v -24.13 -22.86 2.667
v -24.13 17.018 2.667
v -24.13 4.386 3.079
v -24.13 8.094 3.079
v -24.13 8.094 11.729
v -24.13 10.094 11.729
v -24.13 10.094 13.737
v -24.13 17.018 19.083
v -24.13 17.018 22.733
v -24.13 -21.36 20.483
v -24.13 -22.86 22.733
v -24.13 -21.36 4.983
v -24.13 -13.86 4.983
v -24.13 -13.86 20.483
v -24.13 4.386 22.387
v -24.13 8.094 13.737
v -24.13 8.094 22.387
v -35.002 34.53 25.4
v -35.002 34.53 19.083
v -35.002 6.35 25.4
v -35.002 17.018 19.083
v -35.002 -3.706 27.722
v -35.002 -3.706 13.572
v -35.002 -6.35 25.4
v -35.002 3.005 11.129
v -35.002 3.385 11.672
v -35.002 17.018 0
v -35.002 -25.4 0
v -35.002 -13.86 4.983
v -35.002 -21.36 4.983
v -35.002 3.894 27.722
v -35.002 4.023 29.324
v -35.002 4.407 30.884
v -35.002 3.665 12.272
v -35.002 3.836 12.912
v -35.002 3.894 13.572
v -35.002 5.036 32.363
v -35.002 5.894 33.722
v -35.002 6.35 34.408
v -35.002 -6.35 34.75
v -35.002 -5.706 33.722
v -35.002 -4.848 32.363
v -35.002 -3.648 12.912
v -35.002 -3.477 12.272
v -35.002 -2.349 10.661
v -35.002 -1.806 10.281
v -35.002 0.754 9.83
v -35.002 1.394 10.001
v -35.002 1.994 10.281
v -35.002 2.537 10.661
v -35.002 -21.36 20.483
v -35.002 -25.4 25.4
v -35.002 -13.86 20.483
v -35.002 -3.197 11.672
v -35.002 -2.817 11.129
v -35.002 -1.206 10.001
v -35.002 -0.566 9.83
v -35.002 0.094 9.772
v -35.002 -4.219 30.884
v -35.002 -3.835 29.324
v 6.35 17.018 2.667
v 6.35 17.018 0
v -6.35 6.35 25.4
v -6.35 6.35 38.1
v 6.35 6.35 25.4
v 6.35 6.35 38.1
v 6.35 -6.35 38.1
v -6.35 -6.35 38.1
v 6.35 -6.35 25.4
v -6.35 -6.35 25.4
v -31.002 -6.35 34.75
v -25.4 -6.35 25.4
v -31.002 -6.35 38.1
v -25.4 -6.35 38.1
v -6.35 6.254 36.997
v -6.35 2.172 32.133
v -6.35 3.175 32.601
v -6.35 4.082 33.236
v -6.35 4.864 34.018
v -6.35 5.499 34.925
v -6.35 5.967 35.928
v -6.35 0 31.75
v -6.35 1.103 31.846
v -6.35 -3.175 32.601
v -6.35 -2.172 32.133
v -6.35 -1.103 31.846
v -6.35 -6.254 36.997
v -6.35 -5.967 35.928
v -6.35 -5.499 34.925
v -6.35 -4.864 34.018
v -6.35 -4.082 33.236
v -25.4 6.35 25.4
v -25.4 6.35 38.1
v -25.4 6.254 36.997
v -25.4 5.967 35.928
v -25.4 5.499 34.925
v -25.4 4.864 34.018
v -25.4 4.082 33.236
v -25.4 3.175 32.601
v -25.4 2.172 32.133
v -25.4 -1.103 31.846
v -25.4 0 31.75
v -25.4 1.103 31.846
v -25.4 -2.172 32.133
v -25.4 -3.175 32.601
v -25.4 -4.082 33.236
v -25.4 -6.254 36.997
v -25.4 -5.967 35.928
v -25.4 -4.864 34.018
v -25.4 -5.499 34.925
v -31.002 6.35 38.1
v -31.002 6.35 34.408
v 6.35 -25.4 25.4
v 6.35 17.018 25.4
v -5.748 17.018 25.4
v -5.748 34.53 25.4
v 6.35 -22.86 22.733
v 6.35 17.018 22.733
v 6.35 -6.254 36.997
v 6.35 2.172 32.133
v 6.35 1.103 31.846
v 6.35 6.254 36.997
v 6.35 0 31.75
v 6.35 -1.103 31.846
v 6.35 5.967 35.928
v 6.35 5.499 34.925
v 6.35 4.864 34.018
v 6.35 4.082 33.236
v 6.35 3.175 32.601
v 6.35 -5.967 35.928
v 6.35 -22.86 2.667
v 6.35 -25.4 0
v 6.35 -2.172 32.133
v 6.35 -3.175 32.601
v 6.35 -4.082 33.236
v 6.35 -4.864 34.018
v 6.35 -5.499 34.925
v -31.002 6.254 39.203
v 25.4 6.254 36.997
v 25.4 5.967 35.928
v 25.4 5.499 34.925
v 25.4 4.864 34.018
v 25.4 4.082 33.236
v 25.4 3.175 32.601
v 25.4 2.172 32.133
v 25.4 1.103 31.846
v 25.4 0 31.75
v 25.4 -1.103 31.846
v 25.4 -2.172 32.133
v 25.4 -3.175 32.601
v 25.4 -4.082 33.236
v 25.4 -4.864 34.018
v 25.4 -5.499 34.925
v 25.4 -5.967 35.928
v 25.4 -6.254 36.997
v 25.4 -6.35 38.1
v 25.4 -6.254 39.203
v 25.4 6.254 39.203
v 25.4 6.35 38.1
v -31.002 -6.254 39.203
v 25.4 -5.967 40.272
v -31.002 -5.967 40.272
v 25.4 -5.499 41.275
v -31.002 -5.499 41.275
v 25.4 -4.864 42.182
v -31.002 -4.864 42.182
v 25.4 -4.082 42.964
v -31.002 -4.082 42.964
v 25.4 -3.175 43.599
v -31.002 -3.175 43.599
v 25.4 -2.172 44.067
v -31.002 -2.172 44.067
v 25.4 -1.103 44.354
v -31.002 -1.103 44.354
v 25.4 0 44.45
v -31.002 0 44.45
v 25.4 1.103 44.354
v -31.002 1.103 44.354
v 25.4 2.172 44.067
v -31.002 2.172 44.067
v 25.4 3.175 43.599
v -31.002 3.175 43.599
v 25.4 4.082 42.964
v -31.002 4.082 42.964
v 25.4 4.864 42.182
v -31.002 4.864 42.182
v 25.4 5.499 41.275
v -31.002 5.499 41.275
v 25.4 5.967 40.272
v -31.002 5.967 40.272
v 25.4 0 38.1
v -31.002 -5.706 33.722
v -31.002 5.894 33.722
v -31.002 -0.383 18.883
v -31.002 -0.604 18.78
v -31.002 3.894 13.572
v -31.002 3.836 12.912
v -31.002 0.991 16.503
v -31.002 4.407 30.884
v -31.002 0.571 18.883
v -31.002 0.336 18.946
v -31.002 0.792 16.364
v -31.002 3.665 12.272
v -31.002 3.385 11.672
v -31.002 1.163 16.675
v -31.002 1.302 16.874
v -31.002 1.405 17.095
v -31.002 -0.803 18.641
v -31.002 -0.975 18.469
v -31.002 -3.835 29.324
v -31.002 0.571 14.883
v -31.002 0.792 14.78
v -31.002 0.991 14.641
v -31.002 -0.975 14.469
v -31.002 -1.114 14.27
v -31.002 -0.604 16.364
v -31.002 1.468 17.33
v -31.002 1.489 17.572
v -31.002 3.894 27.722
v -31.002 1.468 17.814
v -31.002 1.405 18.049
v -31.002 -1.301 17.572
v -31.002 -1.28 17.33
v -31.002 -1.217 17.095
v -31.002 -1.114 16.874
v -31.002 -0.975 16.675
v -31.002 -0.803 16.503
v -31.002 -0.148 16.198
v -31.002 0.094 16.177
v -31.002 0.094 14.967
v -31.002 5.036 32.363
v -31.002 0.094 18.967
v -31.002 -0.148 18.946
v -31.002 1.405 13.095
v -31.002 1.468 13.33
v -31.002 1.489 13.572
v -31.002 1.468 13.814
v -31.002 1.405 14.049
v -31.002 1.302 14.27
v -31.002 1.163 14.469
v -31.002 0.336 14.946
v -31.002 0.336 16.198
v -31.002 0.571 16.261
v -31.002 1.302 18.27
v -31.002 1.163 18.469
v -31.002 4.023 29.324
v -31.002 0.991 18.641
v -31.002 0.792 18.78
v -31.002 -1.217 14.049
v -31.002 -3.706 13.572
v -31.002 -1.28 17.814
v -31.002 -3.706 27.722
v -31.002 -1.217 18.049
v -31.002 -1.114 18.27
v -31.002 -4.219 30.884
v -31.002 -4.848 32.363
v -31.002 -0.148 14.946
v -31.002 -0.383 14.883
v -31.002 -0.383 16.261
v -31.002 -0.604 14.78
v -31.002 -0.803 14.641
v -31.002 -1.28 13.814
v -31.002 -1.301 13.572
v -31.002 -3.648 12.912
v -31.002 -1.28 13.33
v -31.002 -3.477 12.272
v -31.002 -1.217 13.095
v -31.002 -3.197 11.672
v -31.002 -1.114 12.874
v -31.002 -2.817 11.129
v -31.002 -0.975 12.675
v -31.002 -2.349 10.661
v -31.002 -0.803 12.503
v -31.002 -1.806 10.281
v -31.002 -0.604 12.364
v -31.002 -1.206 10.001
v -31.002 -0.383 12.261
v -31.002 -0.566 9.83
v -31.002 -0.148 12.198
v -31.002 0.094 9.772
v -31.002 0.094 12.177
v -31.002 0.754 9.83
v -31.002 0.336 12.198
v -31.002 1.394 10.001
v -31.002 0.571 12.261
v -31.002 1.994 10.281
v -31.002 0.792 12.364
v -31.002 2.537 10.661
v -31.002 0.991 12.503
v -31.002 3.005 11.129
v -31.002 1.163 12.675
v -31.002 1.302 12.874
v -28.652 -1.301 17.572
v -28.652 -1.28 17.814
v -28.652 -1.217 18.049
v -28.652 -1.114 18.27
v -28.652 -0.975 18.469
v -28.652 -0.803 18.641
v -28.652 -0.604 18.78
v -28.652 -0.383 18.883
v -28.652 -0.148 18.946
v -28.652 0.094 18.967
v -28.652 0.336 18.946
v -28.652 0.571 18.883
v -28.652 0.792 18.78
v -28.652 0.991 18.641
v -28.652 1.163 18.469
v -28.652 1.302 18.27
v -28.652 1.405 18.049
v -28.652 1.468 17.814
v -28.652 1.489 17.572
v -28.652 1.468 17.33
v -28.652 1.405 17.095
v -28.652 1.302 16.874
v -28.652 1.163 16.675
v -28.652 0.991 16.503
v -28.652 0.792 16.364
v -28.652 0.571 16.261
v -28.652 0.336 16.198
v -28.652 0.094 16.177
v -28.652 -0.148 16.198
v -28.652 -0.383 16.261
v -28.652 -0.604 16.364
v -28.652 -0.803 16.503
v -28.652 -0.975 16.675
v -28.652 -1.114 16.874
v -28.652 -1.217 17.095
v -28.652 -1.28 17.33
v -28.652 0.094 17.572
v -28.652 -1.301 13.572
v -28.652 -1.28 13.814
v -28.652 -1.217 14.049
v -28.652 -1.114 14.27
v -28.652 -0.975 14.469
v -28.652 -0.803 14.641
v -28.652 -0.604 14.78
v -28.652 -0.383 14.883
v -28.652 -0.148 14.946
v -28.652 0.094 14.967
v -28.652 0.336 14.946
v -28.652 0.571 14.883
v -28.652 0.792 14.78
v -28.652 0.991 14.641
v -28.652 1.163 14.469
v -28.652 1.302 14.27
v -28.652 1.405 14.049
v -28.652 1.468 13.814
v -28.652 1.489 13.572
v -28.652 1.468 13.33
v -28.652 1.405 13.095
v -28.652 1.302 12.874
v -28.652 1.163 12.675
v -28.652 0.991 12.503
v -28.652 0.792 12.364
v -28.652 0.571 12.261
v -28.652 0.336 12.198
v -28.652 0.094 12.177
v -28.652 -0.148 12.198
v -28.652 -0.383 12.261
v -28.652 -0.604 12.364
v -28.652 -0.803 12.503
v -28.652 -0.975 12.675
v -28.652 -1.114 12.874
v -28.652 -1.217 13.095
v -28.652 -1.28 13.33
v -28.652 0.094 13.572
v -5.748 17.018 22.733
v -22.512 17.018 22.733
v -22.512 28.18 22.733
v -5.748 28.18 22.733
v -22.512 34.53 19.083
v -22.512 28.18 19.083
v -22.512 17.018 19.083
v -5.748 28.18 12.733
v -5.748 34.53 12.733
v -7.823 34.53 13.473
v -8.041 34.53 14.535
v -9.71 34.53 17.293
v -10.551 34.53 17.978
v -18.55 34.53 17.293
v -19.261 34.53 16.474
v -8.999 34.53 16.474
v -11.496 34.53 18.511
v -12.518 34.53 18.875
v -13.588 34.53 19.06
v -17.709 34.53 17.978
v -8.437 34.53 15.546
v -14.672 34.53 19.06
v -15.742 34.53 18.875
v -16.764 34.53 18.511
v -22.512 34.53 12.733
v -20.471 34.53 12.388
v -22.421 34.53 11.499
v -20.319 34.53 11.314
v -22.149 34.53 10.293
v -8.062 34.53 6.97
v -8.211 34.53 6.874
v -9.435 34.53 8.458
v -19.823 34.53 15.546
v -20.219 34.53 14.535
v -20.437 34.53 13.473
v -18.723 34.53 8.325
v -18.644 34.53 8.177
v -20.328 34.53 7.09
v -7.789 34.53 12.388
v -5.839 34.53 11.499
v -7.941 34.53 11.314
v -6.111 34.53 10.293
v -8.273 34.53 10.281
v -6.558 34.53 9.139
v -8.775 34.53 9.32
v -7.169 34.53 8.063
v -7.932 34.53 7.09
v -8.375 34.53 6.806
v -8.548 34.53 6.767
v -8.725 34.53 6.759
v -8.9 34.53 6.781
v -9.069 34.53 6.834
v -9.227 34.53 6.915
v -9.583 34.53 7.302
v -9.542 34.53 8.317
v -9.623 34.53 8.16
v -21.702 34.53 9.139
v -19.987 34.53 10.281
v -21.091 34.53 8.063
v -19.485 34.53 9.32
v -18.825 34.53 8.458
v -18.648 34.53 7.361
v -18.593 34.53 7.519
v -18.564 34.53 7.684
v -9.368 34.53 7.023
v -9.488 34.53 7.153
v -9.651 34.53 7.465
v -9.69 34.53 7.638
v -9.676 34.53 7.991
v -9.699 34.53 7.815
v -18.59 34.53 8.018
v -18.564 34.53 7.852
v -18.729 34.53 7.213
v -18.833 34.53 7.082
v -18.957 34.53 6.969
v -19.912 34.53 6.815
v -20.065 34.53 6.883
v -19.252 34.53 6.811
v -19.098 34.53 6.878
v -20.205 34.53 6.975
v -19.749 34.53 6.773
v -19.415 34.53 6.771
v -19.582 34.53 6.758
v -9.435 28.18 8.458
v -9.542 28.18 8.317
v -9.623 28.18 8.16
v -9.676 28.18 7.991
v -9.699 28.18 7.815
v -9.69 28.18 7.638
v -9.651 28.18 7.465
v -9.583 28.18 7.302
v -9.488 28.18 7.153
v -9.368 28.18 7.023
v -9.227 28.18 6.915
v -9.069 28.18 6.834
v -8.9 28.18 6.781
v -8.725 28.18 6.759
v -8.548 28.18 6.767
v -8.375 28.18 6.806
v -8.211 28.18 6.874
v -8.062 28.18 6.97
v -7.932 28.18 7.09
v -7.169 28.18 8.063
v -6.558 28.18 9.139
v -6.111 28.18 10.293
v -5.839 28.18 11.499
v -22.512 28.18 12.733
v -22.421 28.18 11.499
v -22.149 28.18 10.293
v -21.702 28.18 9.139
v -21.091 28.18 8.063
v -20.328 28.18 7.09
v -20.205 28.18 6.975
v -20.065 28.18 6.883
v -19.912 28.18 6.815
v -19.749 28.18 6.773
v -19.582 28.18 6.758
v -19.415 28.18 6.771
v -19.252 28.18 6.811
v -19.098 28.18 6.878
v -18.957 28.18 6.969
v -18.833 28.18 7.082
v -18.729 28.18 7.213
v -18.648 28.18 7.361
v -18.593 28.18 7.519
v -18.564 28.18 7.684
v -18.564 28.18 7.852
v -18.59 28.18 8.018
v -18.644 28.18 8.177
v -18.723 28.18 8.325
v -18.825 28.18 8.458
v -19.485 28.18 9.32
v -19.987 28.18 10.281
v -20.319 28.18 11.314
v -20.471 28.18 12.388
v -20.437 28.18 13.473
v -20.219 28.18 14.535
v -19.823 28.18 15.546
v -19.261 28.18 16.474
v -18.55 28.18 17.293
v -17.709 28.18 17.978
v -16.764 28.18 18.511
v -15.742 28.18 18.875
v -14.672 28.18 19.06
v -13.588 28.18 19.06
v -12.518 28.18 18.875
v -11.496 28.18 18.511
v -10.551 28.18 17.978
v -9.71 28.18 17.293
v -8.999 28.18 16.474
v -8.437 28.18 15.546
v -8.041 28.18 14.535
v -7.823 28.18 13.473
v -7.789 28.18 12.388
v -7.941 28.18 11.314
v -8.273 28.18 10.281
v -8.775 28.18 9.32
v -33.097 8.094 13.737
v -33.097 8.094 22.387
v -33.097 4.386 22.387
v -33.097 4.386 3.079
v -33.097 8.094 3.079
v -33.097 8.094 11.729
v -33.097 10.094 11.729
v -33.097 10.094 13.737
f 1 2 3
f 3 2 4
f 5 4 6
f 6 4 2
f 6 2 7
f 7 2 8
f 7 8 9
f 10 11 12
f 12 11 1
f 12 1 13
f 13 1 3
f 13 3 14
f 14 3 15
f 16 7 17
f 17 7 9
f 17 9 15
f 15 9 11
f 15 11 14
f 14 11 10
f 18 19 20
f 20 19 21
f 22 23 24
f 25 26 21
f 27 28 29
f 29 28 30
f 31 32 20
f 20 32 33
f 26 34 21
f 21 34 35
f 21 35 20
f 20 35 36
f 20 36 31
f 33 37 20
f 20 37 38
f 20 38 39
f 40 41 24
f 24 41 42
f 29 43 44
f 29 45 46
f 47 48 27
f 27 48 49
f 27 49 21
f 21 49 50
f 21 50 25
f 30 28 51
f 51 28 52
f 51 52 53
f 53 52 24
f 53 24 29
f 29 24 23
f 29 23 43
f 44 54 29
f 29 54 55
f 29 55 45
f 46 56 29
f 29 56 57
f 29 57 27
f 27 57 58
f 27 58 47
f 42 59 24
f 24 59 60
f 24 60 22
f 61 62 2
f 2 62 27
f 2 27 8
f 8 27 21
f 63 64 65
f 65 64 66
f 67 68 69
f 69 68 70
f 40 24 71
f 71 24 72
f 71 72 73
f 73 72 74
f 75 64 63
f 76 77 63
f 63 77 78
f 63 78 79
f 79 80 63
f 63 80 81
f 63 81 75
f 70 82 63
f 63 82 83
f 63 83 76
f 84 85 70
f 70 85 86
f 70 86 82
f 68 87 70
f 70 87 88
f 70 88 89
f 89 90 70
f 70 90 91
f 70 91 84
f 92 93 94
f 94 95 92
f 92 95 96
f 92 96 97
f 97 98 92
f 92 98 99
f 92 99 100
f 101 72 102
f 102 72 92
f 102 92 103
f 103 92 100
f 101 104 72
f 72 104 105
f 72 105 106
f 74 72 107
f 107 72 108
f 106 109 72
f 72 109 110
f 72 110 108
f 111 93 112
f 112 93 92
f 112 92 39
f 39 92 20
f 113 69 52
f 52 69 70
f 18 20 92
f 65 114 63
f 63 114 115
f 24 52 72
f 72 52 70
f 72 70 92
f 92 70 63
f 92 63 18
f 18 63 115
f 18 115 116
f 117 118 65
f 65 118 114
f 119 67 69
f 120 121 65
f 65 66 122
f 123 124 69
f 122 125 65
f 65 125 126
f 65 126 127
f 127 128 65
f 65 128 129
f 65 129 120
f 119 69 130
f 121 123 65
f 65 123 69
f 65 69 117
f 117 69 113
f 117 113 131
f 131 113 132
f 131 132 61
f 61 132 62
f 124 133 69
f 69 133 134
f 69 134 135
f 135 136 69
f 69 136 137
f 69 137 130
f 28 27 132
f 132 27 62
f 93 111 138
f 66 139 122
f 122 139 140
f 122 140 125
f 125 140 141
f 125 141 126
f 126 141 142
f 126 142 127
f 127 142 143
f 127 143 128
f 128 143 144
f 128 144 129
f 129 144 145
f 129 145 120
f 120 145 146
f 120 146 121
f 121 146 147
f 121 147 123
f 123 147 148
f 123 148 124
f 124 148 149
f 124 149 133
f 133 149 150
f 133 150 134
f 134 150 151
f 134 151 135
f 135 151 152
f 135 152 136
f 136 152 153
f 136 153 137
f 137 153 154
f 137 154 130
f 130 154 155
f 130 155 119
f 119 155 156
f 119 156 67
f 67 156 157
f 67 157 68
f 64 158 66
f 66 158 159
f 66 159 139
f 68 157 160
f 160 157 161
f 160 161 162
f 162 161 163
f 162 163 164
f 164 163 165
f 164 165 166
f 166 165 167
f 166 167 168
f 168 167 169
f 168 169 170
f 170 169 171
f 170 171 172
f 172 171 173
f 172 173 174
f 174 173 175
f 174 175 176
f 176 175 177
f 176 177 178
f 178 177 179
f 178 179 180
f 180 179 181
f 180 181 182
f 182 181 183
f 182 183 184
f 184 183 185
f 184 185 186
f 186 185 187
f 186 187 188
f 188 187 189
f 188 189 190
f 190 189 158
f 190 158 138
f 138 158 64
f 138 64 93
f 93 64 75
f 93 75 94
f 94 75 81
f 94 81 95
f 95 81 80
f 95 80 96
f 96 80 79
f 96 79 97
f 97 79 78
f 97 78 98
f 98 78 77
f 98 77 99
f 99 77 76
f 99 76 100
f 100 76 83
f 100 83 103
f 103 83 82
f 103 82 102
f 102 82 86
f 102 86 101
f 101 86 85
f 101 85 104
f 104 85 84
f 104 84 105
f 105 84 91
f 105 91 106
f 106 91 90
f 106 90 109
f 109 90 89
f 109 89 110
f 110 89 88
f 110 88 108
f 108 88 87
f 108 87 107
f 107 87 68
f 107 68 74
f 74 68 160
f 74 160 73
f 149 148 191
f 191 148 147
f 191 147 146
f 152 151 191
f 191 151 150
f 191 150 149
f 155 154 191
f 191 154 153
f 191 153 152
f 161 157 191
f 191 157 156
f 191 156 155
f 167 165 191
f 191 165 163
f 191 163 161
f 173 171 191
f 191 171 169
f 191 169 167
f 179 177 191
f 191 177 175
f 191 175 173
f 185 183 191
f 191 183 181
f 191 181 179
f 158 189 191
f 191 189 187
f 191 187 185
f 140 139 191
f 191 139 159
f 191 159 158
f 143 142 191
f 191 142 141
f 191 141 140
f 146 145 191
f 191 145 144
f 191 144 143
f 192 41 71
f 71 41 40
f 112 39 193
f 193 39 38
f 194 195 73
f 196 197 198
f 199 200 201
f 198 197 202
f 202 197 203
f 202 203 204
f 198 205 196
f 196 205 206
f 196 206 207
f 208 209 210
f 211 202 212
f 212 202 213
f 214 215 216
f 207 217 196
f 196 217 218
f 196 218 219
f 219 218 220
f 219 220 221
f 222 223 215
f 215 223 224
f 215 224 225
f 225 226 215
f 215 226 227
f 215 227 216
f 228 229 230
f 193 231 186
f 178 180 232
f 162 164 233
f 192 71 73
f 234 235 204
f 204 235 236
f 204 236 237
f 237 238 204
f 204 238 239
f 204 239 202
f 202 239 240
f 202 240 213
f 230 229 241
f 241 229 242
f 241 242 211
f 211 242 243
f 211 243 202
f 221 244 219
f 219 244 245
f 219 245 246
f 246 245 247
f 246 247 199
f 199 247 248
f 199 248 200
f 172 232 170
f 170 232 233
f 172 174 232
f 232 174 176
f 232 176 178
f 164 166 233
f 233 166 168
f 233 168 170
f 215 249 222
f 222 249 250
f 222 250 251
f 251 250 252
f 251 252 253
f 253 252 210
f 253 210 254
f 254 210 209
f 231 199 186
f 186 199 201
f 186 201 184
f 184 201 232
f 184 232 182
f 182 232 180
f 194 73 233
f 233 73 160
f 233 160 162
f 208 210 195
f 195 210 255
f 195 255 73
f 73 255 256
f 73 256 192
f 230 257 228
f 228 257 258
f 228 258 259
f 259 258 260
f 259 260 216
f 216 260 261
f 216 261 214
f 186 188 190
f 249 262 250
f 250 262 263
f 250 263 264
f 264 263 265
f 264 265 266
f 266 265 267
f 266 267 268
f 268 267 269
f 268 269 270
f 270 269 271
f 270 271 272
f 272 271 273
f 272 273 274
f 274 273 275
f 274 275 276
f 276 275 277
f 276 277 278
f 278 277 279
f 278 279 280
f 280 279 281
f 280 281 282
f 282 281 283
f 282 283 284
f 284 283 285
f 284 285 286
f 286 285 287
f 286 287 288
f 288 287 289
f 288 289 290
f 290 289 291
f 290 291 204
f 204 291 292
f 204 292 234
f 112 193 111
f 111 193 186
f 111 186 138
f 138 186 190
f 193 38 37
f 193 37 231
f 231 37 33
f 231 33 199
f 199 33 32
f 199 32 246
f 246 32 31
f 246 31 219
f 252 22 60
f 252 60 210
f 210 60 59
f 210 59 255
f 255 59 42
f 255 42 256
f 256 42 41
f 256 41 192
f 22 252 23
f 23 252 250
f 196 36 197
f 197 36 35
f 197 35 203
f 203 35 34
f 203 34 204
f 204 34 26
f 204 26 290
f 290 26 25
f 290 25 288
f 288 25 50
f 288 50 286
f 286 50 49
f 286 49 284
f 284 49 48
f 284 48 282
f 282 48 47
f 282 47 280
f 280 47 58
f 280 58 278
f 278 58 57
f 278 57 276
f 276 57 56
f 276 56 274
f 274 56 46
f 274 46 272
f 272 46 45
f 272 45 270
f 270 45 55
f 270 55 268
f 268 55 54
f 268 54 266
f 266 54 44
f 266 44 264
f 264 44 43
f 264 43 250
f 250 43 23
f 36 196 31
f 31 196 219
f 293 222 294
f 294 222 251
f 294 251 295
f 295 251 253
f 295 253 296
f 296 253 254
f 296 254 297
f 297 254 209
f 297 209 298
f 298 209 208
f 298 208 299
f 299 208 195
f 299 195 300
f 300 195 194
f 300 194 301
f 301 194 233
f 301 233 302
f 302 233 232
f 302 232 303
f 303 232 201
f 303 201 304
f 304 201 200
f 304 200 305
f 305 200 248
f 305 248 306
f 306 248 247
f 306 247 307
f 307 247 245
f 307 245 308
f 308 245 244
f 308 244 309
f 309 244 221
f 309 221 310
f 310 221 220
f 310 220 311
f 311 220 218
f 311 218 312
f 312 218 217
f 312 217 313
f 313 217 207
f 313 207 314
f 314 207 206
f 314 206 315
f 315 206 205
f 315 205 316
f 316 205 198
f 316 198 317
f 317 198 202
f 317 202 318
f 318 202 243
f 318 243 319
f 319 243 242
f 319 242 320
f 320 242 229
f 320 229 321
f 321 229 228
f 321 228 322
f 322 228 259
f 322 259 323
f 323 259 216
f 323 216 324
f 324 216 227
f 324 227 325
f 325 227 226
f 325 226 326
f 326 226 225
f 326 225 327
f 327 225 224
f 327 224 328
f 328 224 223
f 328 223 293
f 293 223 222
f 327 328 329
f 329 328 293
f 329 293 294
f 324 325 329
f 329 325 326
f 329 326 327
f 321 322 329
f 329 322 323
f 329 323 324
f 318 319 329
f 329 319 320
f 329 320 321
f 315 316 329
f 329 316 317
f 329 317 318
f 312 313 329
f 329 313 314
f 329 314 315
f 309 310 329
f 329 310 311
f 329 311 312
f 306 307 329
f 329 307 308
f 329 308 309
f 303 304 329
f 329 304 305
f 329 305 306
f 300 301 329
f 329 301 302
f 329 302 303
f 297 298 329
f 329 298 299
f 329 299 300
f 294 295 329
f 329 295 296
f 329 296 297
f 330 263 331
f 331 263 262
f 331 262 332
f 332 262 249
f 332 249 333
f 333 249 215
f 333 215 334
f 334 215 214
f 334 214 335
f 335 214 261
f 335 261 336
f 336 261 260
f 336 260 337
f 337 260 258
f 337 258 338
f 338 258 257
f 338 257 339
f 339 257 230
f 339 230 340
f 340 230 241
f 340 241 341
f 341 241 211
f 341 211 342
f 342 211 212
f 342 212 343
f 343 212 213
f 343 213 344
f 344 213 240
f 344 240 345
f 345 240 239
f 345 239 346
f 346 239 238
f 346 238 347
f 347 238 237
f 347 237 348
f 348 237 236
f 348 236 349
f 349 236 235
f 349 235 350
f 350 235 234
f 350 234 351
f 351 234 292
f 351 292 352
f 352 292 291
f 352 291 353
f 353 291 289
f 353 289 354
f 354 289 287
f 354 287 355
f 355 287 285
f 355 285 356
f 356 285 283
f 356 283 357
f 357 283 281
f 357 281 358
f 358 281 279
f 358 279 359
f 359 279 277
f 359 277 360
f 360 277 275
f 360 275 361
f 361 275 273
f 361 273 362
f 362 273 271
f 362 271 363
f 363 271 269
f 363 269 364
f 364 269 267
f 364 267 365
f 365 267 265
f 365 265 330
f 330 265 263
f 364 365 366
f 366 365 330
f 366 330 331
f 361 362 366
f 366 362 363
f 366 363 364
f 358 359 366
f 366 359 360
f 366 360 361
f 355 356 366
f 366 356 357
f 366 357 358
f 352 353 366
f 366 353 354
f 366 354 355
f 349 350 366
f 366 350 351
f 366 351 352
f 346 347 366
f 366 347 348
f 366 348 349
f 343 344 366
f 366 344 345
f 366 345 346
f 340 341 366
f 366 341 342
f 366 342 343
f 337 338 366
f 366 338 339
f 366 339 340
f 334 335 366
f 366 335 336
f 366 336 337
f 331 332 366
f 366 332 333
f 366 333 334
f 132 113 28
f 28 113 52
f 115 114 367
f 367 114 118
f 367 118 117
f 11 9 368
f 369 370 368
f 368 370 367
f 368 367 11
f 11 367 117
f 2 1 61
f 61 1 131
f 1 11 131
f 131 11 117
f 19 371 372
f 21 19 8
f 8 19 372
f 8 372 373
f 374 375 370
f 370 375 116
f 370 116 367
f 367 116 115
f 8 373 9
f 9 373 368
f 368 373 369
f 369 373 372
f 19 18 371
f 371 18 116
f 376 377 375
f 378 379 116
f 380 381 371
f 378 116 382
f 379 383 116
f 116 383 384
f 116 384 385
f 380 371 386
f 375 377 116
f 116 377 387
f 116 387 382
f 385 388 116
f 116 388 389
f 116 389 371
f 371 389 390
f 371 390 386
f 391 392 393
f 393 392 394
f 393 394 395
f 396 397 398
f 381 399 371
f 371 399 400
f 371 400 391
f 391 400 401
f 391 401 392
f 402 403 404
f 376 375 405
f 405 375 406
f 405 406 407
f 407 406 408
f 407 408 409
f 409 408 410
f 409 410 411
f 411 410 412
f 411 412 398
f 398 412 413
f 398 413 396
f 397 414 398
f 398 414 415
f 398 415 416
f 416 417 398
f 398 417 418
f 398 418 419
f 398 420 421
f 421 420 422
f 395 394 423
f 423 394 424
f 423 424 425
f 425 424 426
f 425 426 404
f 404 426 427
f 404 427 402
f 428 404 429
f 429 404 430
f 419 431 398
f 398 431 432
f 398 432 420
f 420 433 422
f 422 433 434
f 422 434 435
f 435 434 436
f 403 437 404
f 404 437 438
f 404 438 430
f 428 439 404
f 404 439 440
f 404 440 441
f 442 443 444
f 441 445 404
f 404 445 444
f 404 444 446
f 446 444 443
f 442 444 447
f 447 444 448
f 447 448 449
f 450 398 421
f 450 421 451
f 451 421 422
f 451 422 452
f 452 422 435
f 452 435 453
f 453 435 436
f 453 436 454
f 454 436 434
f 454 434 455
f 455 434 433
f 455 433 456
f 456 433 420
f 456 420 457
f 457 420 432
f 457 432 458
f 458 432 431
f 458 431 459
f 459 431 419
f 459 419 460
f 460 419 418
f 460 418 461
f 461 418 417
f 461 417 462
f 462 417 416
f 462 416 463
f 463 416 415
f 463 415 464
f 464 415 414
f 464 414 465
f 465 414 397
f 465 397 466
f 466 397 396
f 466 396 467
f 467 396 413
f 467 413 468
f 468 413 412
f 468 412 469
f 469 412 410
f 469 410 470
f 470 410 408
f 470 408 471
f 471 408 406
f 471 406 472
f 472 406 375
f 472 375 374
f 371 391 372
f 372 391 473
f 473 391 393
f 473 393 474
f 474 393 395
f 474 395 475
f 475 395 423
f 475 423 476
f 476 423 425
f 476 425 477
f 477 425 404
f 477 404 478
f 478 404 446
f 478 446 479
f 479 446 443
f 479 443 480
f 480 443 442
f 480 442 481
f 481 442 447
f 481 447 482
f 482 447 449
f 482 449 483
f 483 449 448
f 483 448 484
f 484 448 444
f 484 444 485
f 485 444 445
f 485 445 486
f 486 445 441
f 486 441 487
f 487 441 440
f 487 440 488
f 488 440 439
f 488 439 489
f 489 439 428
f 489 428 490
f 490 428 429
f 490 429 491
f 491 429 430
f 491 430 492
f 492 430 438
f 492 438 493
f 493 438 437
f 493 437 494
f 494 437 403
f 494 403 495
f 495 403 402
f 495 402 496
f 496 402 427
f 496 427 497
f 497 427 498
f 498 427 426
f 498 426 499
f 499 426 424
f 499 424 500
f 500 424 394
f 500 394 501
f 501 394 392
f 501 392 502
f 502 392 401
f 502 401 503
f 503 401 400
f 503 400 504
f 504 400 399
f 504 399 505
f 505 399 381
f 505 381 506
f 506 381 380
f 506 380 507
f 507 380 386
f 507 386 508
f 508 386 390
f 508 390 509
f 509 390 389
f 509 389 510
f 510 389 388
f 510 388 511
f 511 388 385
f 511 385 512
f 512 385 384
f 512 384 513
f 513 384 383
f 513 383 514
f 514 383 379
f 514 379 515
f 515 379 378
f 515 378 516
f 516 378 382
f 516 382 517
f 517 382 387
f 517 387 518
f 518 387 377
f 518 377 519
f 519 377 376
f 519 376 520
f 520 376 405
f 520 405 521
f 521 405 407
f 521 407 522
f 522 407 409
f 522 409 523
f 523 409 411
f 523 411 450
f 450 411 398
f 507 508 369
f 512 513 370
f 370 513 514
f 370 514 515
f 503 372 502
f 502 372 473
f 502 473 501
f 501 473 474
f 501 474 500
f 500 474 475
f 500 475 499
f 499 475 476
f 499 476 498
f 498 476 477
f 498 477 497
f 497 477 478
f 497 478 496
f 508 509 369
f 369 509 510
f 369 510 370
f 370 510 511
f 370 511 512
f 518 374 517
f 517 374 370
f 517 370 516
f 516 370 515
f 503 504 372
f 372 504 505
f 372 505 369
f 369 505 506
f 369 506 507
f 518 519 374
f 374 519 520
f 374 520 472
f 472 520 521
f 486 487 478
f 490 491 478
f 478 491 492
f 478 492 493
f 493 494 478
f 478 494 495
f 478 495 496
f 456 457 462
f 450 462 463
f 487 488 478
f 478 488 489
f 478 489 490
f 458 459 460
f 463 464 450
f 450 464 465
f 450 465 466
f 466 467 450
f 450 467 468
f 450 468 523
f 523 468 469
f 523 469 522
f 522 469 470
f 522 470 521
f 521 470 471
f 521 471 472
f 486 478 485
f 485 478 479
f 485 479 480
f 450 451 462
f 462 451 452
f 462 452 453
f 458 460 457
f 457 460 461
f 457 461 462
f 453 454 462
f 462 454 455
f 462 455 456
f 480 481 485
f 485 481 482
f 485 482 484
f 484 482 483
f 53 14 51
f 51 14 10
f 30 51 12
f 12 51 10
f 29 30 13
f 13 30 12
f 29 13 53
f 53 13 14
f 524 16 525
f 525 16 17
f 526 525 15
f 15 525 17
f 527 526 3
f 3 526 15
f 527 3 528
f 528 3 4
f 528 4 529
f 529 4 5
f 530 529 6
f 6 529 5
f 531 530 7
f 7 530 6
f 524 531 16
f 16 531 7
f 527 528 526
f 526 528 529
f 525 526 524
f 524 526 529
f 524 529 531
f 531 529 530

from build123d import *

# Parameters (mm, degrees)
SKETCH1_W            = 12.7
SKETCH1_H            = 12.7
BOSS_EXTRUDE1_DEPTH  = 44.45
SKETCH2_R            = 6.35
BOSS_EXTRUDE2_DEPTH  = 19.05
SKETCH3_W            = 25.4
SKETCH3_H            = 12.7
BOSS_EXTRUDE3_DEPTH  = 28.652
BOSS_EXTRUDE4_START  = 19.05
SKETCH4_W            = 19.05
SKETCH4_H            = 12.7
BOSS_EXTRUDE4_DEPTH  = 9.602
CUT_EXTRUDE1_START   = -41.352
CUT_EXTRUDE1_DEPTH   = 41.352
BOSS_EXTRUDE5_START  = -31.75
SKETCH2_2_R          = 6.35
BOSS_EXTRUDE5_DEPTH  = 19.05
CUT_EXTRUDE2_START   = -4
SKETCH6_R            = 1.395358984
CUT_EXTRUDE2_DEPTH   = 4
CUT_EXTRUDE4_START   = -6.35
SKETCH6_2_R          = 1.395358984
CUT_EXTRUDE4_DEPTH   = 6.35
SKETCH8_W            = 41.352
SKETCH8_H            = 25.4
BOSS_EXTRUDE6_DEPTH  = 19.05
BOSS_EXTRUDE7_START  = -12.7
SKETCH8_2_W          = 41.352
SKETCH8_2_H          = 25.4
BOSS_EXTRUDE7_DEPTH  = 10.668
SKETCH9_W            = 20.066
SKETCH9_H            = 39.878
CUT_EXTRUDE5_DEPTH   = 30.48
SKETCH11_W           = 16.764
SKETCH11_H           = 2.667
SKETCH11_W_2         = 10.872
SKETCH11_H_2         = 3.65
SKETCH11_W_3         = 1.618
BOSS_EXTRUDE8_DEPTH  = 8.622
BOSS_EXTRUDE9_START  = 8.622
SKETCH11_3_W         = 16.764
SKETCH11_3_H         = 2.667
SKETCH11_3_W_2       = 10.872
SKETCH11_3_H_2       = 3.65
SKETCH11_3_W_3       = 1.618
BOSS_EXTRUDE9_DEPTH  = 8.89
BOSS_EXTRUDE10_START = 17.512
BOSS_EXTRUDE10_DEPTH = 6.35
SKETCH12_W           = 15.5
SKETCH12_H           = 7.5
CUT_EXTRUDE7_DEPTH   = 83.562249267
CUT_EXTRUDE8_START   = -1.905
CUT_EXTRUDE8_DEPTH   = 81.657249267


# Read off the part's stored shape, not the designer's step: Cut-Extrude1
with BuildPart() as part:
    # Sketch1 → Boss-Extrude1 (new body)
    with BuildSketch(Plane.XY):
        Rectangle(SKETCH1_W, SKETCH1_H)
    extrude(amount=BOSS_EXTRUDE1_DEPTH)

    # Sketch2 → Boss-Extrude2 (add)
    with BuildSketch(Plane(origin=(6.35, 0, 0), x_dir=(0, 0, -1), z_dir=(1, 0, 0))):
        with Locations(Location((-38.1, 0, 0), (0, 0, 180))):
            Circle(SKETCH2_R)
    extrude(amount=BOSS_EXTRUDE2_DEPTH)

    # Sketch3 → Boss-Extrude3 (add)
    with BuildSketch(Plane.ZY.offset(6.35)):
        with Locations((12.7, 0)):
            Rectangle(SKETCH3_W, SKETCH3_H)
    extrude(amount=BOSS_EXTRUDE3_DEPTH)

    # Sketch4 → Boss-Extrude4 (add)
    with BuildSketch(Plane.ZY.offset(6.35).offset(BOSS_EXTRUDE4_START)):
        with Locations((34.925, 0)):
            Rectangle(SKETCH4_W, SKETCH4_H)
    extrude(amount=BOSS_EXTRUDE4_DEPTH)

    # Cut-Extrude1 outline → Cut-Extrude1 (cut)
    with BuildSketch(Plane(origin=(6.35, 0, 0), x_dir=(0, 0, -1), z_dir=(1, 0, 0)).offset(CUT_EXTRUDE1_START)):
        with BuildLine():
            ThreePointArc((-44.45, 0), (-42.590128061, 4.490128061), (-38.1, 6.35))
            Line((-38.1, 6.35), (-44.45, 6.35))
            Line((-44.45, 6.35), (-44.45, 0))
        make_face()
        with BuildLine():
            Line((-44.45, -6.35), (-38.1, -6.35))
            ThreePointArc((-38.1, -6.35), (-42.590128061, -4.490128061), (-44.45, 0))
            Line((-44.45, 0), (-44.45, -6.35))
        make_face()
    extrude(amount=CUT_EXTRUDE1_DEPTH, mode=Mode.SUBTRACT)

    # Sketch2<2> → Boss-Extrude5 (add)
    with BuildSketch(Plane(origin=(6.35, 0, 0), x_dir=(0, 0, -1), z_dir=(1, 0, 0)).offset(BOSS_EXTRUDE5_START)):
        with Locations(Location((-38.1, 0, 0), (0, 0, 90))):
            Circle(SKETCH2_2_R)
    extrude(amount=BOSS_EXTRUDE5_DEPTH)

    # Sketch6 → Cut-Extrude2 (cut)
    with BuildSketch(Plane.ZY.offset(35.002).offset(CUT_EXTRUDE2_START)):
        with BuildLine():
            Line((27.722, -3.706), (13.572, -3.706))
            ThreePointArc((13.572, -3.706), (9.772, 0.094), (13.572, 3.894))
            Line((13.572, 3.894), (27.722, 3.894))
            ThreePointArc((27.722, 3.894), (30.88427766, 4.407167019), (33.722, 5.894))
            ThreePointArc((33.722, 5.894), (45.322, 0.094), (33.722, -5.706))
            ThreePointArc((33.722, -5.706), (30.88427766, -4.219167019), (27.722, -3.706))
        make_face()
        with Locations(Location((17.572, 0.094, 0), (0, 0, 270))):
            Circle(SKETCH6_R, mode=Mode.SUBTRACT)
        with Locations(Location((13.572, 0.094, 0), (0, 0, 270))):
            Circle(SKETCH6_R, mode=Mode.SUBTRACT)
    extrude(amount=CUT_EXTRUDE2_DEPTH, mode=Mode.SUBTRACT)

    # Sketch6<2> → Cut-Extrude4 (cut)
    with BuildSketch(Plane.ZY.offset(35.002).offset(CUT_EXTRUDE4_START)):
        with Locations(Location((13.572, 0.094, 0), (0, 0, 270))):
            Circle(SKETCH6_2_R)
        with Locations(Location((17.572, 0.094, 0), (0, 0, 270))):
            Circle(SKETCH6_2_R)
    extrude(amount=CUT_EXTRUDE4_DEPTH, mode=Mode.SUBTRACT)

    # Sketch8 → Boss-Extrude6 (add)
    with BuildSketch(Plane.XZ.offset(6.35)):
        with Locations((-14.326, 12.7)):
            Rectangle(SKETCH8_W, SKETCH8_H)
    extrude(amount=BOSS_EXTRUDE6_DEPTH)

    # Sketch8<2> → Boss-Extrude7 (add)
    with BuildSketch(Plane.XZ.offset(6.35).offset(BOSS_EXTRUDE7_START)):
        with Locations((-14.326, 12.7)):
            Rectangle(SKETCH8_2_W, SKETCH8_2_H)
    extrude(amount=-BOSS_EXTRUDE7_DEPTH)

    # Sketch9 → Cut-Extrude5 (cut)
    with BuildSketch(Plane(origin=(6.35, 0, 0), x_dir=(0, 0, -1), z_dir=(1, 0, 0))):
        with Locations((-12.7, -2.921)):
            Rectangle(SKETCH9_W, SKETCH9_H)
    extrude(amount=-CUT_EXTRUDE5_DEPTH, mode=Mode.SUBTRACT)

    # Sketch11 → Boss-Extrude8 (add)
    with BuildSketch(Plane(origin=(0, 17.018, 0), x_dir=(1, 0, 0), z_dir=(0, 1, 0))):
        with Locations((-14.13, -24.0665)):
            Rectangle(SKETCH11_W, SKETCH11_H)
        Polygon((-22.512, -25.4), (-22.512, -22.733), (-24.13, -22.733), (-35.002, -22.733), (-35.002, -25.4), align=None)
        with Locations((-29.566, -20.908)):
            Rectangle(SKETCH11_W_2, SKETCH11_H_2)
        with Locations((-23.321, -20.908)):
            Rectangle(SKETCH11_W_3, SKETCH11_H_2)
    extrude(amount=BOSS_EXTRUDE8_DEPTH)

    # Sketch11<3> → Boss-Extrude9 (add)
    with BuildSketch(Plane(origin=(0, 17.018, 0), x_dir=(1, 0, 0), z_dir=(0, 1, 0)).offset(BOSS_EXTRUDE9_START)):
        with Locations((-14.13, -24.0665)):
            Rectangle(SKETCH11_3_W, SKETCH11_3_H)
        with Locations((-29.566, -20.908)):
            Rectangle(SKETCH11_3_W_2, SKETCH11_3_H_2)
        Polygon((-22.512, -25.4), (-22.512, -22.733), (-24.13, -22.733), (-35.002, -22.733), (-35.002, -25.4), align=None)
        with Locations((-23.321, -20.908)):
            Rectangle(SKETCH11_3_W_3, SKETCH11_3_H_2)
    extrude(amount=BOSS_EXTRUDE9_DEPTH)

    # Sketch11<4> → Boss-Extrude10 (add)
    with BuildSketch(Plane(origin=(0, 17.018, 0), x_dir=(1, 0, 0), z_dir=(0, 1, 0)).offset(BOSS_EXTRUDE10_START)):
        with BuildLine():
            Line((-5.748, -22.733), (-5.748, -12.733))
            ThreePointArc((-5.748, -12.733), (-6.313107632, -9.707422748), (-7.932232333, -7.089809417))
            ThreePointArc((-7.932232333, -7.089809417), (-9.3675, -7.022587953), (-9.434721465, -8.457855619))
            ThreePointArc((-9.434721465, -8.457855619), (-14.13, -19.083), (-18.825278535, -8.457855619))
            ThreePointArc((-18.825278535, -8.457855619), (-18.8925, -7.022587953), (-20.327767667, -7.089809417))
            ThreePointArc((-20.327767667, -7.089809417), (-21.946892368, -9.707422748), (-22.512, -12.733))
            Line((-22.512, -12.733), (-22.512, -19.083))
            Line((-22.512, -19.083), (-22.512, -22.733))
            Line((-22.512, -22.733), (-5.748, -22.733))
        make_face()
    extrude(amount=-BOSS_EXTRUDE10_DEPTH)

    # Sketch12 → Cut-Extrude7 (cut, through all)
    with BuildSketch(Plane.ZY.offset(35.002)):
        with Locations((12.733, -17.61)):
            Rectangle(SKETCH12_W, SKETCH12_H)
    extrude(amount=-CUT_EXTRUDE7_DEPTH, mode=Mode.SUBTRACT)

    # Sketch12<3> → Cut-Extrude8 (cut, through all)
    with BuildSketch(Plane.ZY.offset(35.002).offset(CUT_EXTRUDE8_START)):
        Polygon((13.737, 8.094), (22.387, 8.094), (22.387, 4.386), (3.079, 4.386), (3.079, 8.094), (11.729, 8.094), (11.729, 10.094), (13.737, 10.094), align=None)
    extrude(amount=-CUT_EXTRUDE8_DEPTH, mode=Mode.SUBTRACT)


solid = part.part
